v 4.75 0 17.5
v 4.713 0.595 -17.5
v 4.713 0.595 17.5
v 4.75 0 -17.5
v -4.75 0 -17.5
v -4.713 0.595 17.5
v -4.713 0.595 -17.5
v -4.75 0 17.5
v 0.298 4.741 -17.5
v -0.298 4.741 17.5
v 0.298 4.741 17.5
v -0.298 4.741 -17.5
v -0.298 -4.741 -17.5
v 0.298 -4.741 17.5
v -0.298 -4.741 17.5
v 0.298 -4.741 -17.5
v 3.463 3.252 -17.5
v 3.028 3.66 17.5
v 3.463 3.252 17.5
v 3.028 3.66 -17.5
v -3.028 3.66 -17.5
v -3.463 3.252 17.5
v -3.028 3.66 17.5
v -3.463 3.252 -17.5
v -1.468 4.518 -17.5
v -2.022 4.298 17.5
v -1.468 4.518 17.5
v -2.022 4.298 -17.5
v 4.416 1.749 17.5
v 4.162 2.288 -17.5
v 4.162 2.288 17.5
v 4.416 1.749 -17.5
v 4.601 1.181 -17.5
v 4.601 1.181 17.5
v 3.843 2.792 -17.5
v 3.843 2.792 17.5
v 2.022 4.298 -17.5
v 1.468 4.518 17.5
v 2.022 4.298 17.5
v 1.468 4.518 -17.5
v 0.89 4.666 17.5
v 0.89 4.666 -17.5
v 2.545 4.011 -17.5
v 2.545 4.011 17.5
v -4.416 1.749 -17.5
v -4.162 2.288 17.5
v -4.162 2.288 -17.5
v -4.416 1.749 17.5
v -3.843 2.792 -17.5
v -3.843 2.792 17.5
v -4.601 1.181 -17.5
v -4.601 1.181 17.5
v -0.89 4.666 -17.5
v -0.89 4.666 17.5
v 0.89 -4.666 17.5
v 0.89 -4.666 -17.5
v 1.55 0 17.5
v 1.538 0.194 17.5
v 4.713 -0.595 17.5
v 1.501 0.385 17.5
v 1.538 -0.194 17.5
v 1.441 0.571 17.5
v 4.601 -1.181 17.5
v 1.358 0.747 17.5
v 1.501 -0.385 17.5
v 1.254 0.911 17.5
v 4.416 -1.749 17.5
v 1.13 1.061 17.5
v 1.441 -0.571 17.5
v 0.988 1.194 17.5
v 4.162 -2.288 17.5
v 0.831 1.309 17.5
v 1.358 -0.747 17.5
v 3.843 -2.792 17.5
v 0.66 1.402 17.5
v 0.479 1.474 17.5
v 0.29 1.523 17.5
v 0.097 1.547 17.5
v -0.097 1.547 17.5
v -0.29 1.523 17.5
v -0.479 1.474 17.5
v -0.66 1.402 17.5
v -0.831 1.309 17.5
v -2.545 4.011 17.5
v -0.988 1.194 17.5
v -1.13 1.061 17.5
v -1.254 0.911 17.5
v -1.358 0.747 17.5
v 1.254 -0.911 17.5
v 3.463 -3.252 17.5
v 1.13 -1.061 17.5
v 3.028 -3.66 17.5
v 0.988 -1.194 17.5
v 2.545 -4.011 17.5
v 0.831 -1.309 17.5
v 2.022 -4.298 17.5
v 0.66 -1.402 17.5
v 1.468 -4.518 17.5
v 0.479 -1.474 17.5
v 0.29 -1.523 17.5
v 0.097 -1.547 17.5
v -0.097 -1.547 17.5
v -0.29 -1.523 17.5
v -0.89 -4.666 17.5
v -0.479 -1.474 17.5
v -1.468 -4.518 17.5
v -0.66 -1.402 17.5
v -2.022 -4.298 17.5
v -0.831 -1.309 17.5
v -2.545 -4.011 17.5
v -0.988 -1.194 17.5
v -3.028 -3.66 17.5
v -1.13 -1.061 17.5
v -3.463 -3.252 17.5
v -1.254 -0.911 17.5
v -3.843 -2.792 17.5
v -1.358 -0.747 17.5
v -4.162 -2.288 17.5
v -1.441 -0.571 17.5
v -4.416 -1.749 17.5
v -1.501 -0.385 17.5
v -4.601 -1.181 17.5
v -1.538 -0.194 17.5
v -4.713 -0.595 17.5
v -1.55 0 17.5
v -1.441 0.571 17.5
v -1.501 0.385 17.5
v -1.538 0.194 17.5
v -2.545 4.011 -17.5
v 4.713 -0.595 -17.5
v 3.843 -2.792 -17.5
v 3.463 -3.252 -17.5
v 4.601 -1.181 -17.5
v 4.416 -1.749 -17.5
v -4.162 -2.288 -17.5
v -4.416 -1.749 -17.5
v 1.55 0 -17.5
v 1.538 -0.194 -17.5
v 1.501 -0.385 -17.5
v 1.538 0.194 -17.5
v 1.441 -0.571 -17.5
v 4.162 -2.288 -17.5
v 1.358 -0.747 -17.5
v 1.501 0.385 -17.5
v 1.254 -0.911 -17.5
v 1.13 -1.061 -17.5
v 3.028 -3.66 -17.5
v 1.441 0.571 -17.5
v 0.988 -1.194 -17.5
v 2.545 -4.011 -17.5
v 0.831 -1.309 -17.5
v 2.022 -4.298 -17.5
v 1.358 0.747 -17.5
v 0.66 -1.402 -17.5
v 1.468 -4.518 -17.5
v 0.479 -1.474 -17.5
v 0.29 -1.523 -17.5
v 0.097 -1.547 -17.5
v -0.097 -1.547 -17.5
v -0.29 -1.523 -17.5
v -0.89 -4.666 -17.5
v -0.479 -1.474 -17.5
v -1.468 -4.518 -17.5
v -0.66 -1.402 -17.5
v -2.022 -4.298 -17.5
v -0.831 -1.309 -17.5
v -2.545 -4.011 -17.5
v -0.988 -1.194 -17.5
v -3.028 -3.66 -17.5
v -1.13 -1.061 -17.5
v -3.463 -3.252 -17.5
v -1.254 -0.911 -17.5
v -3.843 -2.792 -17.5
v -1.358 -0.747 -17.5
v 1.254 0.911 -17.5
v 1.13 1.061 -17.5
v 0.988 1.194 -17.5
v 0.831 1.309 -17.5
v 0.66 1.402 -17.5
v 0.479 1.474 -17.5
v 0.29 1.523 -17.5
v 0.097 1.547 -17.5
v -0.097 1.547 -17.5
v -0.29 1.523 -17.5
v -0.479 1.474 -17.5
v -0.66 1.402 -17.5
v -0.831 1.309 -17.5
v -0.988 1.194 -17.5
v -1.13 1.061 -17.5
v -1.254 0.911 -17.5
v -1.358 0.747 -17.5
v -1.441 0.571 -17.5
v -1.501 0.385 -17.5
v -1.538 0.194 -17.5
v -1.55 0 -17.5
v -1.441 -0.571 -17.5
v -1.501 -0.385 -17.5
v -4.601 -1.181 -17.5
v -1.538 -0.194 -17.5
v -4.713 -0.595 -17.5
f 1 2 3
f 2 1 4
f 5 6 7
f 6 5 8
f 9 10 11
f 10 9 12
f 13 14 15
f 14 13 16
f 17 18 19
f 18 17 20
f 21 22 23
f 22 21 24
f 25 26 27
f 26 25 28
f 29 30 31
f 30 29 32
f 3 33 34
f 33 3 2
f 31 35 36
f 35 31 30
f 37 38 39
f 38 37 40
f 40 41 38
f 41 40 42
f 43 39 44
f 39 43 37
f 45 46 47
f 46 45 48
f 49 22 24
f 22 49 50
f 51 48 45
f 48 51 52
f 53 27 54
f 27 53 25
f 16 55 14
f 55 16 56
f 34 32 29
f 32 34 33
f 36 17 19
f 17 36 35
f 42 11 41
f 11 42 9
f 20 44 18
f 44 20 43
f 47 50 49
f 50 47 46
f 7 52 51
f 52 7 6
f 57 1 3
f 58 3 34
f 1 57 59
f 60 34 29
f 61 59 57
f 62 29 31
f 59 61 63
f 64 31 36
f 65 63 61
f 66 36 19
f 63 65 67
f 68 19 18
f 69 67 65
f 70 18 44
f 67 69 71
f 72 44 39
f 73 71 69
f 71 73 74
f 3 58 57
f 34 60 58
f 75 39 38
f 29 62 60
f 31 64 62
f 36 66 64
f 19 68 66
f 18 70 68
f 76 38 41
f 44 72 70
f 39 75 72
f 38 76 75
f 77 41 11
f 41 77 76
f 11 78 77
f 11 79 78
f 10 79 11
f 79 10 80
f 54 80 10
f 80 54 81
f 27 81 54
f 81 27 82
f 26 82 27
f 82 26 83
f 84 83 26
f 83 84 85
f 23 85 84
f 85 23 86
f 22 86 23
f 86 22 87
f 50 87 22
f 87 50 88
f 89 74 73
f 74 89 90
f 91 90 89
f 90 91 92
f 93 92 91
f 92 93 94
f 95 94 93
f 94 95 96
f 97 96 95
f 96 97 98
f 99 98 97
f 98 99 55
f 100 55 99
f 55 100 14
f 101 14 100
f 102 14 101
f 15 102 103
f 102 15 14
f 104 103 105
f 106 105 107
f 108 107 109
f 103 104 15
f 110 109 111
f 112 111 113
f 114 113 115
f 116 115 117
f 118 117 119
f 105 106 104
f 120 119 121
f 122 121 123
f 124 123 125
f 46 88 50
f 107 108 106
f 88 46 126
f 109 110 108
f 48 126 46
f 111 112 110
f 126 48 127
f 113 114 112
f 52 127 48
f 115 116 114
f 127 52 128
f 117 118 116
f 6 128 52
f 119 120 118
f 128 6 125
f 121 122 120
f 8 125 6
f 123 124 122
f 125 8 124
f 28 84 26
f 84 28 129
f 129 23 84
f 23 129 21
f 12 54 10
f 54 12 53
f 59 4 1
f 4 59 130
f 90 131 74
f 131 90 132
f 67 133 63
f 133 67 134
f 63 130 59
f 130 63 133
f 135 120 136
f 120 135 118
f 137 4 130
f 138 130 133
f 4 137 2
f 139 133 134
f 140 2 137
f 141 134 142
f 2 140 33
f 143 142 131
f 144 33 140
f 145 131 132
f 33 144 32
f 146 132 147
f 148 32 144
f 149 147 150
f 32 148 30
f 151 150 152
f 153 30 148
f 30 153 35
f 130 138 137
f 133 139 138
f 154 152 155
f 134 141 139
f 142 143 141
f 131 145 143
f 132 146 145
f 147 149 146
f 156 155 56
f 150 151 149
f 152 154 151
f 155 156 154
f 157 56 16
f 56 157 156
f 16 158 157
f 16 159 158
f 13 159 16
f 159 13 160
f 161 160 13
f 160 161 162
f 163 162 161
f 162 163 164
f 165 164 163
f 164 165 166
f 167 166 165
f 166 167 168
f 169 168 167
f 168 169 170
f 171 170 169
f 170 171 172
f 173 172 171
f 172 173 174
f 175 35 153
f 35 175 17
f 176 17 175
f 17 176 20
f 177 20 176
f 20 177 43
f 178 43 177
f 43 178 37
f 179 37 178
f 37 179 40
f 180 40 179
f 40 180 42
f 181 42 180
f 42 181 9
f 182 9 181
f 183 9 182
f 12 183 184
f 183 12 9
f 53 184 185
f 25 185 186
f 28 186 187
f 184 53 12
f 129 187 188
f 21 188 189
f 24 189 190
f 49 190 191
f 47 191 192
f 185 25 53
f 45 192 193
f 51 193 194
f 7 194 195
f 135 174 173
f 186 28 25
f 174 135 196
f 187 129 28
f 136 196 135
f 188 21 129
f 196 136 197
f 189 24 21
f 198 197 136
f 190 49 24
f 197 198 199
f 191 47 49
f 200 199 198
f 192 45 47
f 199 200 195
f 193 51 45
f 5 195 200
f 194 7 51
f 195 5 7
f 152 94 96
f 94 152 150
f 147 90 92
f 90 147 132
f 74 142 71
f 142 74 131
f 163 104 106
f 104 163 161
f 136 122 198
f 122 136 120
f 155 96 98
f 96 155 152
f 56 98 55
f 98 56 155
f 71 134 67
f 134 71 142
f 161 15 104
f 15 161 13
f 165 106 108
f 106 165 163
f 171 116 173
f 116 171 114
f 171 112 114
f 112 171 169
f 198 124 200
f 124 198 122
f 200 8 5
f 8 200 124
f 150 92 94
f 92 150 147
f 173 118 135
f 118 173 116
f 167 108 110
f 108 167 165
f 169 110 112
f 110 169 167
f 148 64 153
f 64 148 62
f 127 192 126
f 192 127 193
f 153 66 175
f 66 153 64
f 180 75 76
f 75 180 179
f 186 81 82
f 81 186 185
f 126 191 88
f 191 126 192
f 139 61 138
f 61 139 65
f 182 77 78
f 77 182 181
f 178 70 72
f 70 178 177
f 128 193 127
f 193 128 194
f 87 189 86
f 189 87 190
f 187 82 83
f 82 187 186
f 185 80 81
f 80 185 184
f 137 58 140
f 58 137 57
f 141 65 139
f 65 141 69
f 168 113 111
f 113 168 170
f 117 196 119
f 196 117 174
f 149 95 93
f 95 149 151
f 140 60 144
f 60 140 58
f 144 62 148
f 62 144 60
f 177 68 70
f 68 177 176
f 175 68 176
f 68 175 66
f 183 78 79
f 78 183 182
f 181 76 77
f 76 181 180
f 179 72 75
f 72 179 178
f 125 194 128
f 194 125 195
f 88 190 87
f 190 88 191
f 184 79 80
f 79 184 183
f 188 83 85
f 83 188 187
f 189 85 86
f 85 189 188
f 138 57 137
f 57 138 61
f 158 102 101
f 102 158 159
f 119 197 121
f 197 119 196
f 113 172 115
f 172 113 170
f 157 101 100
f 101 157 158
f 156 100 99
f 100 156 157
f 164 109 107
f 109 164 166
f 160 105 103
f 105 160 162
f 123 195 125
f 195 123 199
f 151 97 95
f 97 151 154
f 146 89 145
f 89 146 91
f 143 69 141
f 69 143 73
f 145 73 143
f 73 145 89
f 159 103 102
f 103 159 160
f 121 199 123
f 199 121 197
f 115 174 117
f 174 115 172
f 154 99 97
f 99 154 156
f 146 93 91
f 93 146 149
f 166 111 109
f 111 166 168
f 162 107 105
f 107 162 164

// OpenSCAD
$fn = 50;


difference() {
	union() {
		translate(v = [0, 0, -17.5000000000]) {
			cylinder(h = 35, r = 4.7500000000);
		}
	}
	union() {
		translate(v = [0, 0, -100.0000000000]) {
			cylinder(h = 200, r = 1.5500000000);
		}
	}
}
